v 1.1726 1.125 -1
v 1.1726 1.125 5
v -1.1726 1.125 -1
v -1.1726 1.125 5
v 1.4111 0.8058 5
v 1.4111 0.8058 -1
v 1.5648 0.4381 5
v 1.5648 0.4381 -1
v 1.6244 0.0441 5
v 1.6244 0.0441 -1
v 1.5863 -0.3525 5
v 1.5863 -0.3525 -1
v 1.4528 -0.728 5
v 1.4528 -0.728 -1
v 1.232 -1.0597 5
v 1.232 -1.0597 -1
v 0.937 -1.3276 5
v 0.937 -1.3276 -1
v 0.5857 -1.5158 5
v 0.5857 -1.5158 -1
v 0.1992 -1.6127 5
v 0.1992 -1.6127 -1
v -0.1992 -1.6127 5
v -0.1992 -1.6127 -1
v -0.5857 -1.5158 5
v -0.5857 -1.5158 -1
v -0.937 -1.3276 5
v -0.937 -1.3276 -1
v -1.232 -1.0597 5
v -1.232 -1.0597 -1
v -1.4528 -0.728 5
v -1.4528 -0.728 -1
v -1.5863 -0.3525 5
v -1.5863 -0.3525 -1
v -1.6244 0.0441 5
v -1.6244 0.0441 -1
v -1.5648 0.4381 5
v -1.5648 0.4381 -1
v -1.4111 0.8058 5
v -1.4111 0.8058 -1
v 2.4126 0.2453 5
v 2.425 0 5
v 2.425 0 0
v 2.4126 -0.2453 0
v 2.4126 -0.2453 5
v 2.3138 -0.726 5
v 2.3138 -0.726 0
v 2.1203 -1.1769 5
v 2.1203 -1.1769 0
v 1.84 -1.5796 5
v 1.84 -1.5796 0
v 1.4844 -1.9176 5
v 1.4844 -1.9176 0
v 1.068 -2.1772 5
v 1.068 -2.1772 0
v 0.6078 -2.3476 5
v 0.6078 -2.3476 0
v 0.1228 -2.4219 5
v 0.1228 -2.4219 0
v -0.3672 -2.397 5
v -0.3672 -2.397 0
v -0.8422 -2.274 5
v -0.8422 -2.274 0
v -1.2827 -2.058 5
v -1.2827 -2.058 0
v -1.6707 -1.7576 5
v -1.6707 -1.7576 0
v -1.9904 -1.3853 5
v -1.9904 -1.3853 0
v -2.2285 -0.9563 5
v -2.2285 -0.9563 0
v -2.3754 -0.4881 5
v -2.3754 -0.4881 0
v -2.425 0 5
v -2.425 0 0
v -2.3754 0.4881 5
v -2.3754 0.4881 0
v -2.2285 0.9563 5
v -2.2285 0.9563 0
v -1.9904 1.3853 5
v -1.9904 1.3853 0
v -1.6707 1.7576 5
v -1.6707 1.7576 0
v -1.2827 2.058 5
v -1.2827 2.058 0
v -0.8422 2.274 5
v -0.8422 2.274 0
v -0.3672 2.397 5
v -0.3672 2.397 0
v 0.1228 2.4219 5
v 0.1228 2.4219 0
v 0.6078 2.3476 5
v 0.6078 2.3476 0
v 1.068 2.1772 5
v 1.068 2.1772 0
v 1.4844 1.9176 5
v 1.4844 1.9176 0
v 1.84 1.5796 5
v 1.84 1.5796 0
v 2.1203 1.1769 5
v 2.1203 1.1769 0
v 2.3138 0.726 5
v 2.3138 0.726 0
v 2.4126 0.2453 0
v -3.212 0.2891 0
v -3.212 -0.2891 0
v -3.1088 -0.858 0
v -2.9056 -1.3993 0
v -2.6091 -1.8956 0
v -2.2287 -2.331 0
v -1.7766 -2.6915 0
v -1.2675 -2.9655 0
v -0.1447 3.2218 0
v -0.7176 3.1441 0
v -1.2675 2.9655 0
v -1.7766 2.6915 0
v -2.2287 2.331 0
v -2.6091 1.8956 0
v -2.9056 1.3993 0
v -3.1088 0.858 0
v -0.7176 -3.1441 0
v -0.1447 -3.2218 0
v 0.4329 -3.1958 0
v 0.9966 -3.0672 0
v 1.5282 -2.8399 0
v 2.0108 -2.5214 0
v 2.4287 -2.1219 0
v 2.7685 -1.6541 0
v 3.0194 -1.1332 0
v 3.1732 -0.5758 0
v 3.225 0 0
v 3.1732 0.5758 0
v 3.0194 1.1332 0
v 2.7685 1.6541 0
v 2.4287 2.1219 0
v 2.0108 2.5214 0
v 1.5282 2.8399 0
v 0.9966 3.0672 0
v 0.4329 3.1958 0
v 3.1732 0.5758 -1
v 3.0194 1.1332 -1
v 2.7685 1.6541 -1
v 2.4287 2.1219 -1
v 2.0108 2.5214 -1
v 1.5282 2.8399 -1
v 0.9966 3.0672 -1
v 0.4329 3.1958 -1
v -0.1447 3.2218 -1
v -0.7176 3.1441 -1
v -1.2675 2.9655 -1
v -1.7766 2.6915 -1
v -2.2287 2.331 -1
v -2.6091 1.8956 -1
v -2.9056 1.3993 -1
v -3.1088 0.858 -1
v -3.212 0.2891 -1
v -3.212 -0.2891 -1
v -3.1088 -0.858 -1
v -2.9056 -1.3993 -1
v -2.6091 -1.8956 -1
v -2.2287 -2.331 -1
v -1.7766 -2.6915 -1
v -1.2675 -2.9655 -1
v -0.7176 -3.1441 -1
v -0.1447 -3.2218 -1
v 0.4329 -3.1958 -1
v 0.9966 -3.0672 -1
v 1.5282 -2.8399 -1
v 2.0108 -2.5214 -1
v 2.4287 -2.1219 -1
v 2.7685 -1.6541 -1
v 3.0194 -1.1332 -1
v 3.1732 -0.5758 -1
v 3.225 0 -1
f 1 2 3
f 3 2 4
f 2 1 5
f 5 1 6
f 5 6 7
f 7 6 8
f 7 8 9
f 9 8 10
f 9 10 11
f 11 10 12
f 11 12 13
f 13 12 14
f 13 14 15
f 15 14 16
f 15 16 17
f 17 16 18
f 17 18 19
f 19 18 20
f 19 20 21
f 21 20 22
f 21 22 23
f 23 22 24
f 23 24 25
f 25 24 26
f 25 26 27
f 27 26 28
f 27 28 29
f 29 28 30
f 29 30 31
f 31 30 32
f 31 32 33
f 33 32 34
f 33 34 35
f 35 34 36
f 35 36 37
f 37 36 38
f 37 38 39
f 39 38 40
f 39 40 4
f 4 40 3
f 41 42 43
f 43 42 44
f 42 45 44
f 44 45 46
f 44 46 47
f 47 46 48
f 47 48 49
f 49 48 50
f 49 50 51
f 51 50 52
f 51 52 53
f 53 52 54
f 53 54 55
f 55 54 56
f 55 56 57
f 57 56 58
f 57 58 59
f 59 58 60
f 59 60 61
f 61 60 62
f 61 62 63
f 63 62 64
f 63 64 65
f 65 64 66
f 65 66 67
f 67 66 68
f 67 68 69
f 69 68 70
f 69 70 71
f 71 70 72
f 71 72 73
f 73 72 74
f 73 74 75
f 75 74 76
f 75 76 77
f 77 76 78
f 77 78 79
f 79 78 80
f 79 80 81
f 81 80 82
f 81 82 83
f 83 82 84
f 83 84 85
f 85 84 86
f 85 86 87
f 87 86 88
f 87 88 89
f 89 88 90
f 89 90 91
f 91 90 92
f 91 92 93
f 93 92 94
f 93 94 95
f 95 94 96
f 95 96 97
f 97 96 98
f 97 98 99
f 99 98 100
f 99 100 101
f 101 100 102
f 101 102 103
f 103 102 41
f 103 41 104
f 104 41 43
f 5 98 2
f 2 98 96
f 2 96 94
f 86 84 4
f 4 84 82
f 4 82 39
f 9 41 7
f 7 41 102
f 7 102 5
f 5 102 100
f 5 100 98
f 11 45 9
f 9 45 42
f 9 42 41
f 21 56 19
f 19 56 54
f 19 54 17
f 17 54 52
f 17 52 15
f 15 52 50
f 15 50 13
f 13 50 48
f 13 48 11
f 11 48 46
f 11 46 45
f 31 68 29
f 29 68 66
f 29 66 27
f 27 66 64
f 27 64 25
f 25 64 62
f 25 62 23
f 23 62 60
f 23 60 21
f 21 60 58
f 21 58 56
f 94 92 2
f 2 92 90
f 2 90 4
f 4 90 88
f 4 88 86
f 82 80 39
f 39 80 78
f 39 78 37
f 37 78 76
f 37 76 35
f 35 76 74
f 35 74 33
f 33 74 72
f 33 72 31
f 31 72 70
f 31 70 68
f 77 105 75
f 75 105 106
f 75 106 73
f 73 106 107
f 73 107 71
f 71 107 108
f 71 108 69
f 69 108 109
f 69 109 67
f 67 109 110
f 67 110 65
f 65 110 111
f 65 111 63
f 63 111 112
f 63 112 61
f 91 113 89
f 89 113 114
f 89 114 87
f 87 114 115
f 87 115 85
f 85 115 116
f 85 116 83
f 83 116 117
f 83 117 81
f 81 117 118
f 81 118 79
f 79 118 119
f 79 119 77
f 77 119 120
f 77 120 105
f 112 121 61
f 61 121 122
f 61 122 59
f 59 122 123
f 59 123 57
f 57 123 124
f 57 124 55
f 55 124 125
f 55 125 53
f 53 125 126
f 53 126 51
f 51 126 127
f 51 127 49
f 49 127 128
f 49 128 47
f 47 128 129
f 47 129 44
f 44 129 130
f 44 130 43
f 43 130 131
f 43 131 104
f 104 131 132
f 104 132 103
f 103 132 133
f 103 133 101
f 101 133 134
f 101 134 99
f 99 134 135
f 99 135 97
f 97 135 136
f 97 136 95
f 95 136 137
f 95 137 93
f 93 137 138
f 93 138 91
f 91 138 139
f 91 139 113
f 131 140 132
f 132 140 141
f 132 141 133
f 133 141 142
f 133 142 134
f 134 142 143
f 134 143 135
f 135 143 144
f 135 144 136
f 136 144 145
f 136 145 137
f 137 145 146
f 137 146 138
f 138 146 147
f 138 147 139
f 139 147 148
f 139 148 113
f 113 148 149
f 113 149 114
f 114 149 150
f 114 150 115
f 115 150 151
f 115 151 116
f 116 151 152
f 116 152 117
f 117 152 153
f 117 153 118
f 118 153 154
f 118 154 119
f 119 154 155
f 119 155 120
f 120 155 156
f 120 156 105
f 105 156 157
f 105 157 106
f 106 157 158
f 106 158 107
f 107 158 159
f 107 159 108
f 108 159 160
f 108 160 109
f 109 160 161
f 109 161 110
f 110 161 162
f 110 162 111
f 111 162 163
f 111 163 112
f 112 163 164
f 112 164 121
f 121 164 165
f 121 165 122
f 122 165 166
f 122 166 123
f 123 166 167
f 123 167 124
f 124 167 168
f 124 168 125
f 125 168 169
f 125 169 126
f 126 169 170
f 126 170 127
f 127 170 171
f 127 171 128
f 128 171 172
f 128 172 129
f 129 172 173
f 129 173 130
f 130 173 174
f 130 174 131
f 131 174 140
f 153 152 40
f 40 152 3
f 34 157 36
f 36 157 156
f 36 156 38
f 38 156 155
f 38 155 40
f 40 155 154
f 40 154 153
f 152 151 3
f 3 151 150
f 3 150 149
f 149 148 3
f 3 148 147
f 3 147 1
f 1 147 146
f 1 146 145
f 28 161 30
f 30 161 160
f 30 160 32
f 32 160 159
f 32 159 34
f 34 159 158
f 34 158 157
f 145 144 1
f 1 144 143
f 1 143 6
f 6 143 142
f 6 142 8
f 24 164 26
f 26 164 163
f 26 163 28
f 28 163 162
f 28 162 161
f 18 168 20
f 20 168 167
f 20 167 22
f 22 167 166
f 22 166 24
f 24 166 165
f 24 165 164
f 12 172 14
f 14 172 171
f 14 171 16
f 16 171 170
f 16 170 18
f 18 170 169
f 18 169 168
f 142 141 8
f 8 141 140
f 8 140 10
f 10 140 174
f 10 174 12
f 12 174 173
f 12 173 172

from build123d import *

# Parameters (mm, degrees)
SKETCH1_R           = 2.425
BOSS_EXTRUDE1_DEPTH = 5
BOSS_EXTRUDE2_START = -1
SKETCH1_4_R         = 3.225
BOSS_EXTRUDE2_DEPTH = 1


with BuildPart() as part:
    # Sketch1 → Boss-Extrude1 (new body)
    with BuildSketch(Plane.XY):
        Circle(SKETCH1_R)
        with BuildLine():
            Line((-1.17260394, 1.125), (1.17260394, 1.125))
            ThreePointArc((1.17260394, 1.125), (0, -1.625), (-1.17260394, 1.125))
        make_face(mode=Mode.SUBTRACT)
    extrude(amount=BOSS_EXTRUDE1_DEPTH)

    # Sketch1<4> → Boss-Extrude2 (add)
    with BuildSketch(Plane.XY.offset(BOSS_EXTRUDE2_START)):
        Circle(SKETCH1_4_R)
        with BuildLine():
            Line((-1.17260394, 1.125), (1.17260394, 1.125))
            ThreePointArc((1.17260394, 1.125), (0, -1.625), (-1.17260394, 1.125))
        make_face(mode=Mode.SUBTRACT)
    extrude(amount=BOSS_EXTRUDE2_DEPTH)


solid = part.part
